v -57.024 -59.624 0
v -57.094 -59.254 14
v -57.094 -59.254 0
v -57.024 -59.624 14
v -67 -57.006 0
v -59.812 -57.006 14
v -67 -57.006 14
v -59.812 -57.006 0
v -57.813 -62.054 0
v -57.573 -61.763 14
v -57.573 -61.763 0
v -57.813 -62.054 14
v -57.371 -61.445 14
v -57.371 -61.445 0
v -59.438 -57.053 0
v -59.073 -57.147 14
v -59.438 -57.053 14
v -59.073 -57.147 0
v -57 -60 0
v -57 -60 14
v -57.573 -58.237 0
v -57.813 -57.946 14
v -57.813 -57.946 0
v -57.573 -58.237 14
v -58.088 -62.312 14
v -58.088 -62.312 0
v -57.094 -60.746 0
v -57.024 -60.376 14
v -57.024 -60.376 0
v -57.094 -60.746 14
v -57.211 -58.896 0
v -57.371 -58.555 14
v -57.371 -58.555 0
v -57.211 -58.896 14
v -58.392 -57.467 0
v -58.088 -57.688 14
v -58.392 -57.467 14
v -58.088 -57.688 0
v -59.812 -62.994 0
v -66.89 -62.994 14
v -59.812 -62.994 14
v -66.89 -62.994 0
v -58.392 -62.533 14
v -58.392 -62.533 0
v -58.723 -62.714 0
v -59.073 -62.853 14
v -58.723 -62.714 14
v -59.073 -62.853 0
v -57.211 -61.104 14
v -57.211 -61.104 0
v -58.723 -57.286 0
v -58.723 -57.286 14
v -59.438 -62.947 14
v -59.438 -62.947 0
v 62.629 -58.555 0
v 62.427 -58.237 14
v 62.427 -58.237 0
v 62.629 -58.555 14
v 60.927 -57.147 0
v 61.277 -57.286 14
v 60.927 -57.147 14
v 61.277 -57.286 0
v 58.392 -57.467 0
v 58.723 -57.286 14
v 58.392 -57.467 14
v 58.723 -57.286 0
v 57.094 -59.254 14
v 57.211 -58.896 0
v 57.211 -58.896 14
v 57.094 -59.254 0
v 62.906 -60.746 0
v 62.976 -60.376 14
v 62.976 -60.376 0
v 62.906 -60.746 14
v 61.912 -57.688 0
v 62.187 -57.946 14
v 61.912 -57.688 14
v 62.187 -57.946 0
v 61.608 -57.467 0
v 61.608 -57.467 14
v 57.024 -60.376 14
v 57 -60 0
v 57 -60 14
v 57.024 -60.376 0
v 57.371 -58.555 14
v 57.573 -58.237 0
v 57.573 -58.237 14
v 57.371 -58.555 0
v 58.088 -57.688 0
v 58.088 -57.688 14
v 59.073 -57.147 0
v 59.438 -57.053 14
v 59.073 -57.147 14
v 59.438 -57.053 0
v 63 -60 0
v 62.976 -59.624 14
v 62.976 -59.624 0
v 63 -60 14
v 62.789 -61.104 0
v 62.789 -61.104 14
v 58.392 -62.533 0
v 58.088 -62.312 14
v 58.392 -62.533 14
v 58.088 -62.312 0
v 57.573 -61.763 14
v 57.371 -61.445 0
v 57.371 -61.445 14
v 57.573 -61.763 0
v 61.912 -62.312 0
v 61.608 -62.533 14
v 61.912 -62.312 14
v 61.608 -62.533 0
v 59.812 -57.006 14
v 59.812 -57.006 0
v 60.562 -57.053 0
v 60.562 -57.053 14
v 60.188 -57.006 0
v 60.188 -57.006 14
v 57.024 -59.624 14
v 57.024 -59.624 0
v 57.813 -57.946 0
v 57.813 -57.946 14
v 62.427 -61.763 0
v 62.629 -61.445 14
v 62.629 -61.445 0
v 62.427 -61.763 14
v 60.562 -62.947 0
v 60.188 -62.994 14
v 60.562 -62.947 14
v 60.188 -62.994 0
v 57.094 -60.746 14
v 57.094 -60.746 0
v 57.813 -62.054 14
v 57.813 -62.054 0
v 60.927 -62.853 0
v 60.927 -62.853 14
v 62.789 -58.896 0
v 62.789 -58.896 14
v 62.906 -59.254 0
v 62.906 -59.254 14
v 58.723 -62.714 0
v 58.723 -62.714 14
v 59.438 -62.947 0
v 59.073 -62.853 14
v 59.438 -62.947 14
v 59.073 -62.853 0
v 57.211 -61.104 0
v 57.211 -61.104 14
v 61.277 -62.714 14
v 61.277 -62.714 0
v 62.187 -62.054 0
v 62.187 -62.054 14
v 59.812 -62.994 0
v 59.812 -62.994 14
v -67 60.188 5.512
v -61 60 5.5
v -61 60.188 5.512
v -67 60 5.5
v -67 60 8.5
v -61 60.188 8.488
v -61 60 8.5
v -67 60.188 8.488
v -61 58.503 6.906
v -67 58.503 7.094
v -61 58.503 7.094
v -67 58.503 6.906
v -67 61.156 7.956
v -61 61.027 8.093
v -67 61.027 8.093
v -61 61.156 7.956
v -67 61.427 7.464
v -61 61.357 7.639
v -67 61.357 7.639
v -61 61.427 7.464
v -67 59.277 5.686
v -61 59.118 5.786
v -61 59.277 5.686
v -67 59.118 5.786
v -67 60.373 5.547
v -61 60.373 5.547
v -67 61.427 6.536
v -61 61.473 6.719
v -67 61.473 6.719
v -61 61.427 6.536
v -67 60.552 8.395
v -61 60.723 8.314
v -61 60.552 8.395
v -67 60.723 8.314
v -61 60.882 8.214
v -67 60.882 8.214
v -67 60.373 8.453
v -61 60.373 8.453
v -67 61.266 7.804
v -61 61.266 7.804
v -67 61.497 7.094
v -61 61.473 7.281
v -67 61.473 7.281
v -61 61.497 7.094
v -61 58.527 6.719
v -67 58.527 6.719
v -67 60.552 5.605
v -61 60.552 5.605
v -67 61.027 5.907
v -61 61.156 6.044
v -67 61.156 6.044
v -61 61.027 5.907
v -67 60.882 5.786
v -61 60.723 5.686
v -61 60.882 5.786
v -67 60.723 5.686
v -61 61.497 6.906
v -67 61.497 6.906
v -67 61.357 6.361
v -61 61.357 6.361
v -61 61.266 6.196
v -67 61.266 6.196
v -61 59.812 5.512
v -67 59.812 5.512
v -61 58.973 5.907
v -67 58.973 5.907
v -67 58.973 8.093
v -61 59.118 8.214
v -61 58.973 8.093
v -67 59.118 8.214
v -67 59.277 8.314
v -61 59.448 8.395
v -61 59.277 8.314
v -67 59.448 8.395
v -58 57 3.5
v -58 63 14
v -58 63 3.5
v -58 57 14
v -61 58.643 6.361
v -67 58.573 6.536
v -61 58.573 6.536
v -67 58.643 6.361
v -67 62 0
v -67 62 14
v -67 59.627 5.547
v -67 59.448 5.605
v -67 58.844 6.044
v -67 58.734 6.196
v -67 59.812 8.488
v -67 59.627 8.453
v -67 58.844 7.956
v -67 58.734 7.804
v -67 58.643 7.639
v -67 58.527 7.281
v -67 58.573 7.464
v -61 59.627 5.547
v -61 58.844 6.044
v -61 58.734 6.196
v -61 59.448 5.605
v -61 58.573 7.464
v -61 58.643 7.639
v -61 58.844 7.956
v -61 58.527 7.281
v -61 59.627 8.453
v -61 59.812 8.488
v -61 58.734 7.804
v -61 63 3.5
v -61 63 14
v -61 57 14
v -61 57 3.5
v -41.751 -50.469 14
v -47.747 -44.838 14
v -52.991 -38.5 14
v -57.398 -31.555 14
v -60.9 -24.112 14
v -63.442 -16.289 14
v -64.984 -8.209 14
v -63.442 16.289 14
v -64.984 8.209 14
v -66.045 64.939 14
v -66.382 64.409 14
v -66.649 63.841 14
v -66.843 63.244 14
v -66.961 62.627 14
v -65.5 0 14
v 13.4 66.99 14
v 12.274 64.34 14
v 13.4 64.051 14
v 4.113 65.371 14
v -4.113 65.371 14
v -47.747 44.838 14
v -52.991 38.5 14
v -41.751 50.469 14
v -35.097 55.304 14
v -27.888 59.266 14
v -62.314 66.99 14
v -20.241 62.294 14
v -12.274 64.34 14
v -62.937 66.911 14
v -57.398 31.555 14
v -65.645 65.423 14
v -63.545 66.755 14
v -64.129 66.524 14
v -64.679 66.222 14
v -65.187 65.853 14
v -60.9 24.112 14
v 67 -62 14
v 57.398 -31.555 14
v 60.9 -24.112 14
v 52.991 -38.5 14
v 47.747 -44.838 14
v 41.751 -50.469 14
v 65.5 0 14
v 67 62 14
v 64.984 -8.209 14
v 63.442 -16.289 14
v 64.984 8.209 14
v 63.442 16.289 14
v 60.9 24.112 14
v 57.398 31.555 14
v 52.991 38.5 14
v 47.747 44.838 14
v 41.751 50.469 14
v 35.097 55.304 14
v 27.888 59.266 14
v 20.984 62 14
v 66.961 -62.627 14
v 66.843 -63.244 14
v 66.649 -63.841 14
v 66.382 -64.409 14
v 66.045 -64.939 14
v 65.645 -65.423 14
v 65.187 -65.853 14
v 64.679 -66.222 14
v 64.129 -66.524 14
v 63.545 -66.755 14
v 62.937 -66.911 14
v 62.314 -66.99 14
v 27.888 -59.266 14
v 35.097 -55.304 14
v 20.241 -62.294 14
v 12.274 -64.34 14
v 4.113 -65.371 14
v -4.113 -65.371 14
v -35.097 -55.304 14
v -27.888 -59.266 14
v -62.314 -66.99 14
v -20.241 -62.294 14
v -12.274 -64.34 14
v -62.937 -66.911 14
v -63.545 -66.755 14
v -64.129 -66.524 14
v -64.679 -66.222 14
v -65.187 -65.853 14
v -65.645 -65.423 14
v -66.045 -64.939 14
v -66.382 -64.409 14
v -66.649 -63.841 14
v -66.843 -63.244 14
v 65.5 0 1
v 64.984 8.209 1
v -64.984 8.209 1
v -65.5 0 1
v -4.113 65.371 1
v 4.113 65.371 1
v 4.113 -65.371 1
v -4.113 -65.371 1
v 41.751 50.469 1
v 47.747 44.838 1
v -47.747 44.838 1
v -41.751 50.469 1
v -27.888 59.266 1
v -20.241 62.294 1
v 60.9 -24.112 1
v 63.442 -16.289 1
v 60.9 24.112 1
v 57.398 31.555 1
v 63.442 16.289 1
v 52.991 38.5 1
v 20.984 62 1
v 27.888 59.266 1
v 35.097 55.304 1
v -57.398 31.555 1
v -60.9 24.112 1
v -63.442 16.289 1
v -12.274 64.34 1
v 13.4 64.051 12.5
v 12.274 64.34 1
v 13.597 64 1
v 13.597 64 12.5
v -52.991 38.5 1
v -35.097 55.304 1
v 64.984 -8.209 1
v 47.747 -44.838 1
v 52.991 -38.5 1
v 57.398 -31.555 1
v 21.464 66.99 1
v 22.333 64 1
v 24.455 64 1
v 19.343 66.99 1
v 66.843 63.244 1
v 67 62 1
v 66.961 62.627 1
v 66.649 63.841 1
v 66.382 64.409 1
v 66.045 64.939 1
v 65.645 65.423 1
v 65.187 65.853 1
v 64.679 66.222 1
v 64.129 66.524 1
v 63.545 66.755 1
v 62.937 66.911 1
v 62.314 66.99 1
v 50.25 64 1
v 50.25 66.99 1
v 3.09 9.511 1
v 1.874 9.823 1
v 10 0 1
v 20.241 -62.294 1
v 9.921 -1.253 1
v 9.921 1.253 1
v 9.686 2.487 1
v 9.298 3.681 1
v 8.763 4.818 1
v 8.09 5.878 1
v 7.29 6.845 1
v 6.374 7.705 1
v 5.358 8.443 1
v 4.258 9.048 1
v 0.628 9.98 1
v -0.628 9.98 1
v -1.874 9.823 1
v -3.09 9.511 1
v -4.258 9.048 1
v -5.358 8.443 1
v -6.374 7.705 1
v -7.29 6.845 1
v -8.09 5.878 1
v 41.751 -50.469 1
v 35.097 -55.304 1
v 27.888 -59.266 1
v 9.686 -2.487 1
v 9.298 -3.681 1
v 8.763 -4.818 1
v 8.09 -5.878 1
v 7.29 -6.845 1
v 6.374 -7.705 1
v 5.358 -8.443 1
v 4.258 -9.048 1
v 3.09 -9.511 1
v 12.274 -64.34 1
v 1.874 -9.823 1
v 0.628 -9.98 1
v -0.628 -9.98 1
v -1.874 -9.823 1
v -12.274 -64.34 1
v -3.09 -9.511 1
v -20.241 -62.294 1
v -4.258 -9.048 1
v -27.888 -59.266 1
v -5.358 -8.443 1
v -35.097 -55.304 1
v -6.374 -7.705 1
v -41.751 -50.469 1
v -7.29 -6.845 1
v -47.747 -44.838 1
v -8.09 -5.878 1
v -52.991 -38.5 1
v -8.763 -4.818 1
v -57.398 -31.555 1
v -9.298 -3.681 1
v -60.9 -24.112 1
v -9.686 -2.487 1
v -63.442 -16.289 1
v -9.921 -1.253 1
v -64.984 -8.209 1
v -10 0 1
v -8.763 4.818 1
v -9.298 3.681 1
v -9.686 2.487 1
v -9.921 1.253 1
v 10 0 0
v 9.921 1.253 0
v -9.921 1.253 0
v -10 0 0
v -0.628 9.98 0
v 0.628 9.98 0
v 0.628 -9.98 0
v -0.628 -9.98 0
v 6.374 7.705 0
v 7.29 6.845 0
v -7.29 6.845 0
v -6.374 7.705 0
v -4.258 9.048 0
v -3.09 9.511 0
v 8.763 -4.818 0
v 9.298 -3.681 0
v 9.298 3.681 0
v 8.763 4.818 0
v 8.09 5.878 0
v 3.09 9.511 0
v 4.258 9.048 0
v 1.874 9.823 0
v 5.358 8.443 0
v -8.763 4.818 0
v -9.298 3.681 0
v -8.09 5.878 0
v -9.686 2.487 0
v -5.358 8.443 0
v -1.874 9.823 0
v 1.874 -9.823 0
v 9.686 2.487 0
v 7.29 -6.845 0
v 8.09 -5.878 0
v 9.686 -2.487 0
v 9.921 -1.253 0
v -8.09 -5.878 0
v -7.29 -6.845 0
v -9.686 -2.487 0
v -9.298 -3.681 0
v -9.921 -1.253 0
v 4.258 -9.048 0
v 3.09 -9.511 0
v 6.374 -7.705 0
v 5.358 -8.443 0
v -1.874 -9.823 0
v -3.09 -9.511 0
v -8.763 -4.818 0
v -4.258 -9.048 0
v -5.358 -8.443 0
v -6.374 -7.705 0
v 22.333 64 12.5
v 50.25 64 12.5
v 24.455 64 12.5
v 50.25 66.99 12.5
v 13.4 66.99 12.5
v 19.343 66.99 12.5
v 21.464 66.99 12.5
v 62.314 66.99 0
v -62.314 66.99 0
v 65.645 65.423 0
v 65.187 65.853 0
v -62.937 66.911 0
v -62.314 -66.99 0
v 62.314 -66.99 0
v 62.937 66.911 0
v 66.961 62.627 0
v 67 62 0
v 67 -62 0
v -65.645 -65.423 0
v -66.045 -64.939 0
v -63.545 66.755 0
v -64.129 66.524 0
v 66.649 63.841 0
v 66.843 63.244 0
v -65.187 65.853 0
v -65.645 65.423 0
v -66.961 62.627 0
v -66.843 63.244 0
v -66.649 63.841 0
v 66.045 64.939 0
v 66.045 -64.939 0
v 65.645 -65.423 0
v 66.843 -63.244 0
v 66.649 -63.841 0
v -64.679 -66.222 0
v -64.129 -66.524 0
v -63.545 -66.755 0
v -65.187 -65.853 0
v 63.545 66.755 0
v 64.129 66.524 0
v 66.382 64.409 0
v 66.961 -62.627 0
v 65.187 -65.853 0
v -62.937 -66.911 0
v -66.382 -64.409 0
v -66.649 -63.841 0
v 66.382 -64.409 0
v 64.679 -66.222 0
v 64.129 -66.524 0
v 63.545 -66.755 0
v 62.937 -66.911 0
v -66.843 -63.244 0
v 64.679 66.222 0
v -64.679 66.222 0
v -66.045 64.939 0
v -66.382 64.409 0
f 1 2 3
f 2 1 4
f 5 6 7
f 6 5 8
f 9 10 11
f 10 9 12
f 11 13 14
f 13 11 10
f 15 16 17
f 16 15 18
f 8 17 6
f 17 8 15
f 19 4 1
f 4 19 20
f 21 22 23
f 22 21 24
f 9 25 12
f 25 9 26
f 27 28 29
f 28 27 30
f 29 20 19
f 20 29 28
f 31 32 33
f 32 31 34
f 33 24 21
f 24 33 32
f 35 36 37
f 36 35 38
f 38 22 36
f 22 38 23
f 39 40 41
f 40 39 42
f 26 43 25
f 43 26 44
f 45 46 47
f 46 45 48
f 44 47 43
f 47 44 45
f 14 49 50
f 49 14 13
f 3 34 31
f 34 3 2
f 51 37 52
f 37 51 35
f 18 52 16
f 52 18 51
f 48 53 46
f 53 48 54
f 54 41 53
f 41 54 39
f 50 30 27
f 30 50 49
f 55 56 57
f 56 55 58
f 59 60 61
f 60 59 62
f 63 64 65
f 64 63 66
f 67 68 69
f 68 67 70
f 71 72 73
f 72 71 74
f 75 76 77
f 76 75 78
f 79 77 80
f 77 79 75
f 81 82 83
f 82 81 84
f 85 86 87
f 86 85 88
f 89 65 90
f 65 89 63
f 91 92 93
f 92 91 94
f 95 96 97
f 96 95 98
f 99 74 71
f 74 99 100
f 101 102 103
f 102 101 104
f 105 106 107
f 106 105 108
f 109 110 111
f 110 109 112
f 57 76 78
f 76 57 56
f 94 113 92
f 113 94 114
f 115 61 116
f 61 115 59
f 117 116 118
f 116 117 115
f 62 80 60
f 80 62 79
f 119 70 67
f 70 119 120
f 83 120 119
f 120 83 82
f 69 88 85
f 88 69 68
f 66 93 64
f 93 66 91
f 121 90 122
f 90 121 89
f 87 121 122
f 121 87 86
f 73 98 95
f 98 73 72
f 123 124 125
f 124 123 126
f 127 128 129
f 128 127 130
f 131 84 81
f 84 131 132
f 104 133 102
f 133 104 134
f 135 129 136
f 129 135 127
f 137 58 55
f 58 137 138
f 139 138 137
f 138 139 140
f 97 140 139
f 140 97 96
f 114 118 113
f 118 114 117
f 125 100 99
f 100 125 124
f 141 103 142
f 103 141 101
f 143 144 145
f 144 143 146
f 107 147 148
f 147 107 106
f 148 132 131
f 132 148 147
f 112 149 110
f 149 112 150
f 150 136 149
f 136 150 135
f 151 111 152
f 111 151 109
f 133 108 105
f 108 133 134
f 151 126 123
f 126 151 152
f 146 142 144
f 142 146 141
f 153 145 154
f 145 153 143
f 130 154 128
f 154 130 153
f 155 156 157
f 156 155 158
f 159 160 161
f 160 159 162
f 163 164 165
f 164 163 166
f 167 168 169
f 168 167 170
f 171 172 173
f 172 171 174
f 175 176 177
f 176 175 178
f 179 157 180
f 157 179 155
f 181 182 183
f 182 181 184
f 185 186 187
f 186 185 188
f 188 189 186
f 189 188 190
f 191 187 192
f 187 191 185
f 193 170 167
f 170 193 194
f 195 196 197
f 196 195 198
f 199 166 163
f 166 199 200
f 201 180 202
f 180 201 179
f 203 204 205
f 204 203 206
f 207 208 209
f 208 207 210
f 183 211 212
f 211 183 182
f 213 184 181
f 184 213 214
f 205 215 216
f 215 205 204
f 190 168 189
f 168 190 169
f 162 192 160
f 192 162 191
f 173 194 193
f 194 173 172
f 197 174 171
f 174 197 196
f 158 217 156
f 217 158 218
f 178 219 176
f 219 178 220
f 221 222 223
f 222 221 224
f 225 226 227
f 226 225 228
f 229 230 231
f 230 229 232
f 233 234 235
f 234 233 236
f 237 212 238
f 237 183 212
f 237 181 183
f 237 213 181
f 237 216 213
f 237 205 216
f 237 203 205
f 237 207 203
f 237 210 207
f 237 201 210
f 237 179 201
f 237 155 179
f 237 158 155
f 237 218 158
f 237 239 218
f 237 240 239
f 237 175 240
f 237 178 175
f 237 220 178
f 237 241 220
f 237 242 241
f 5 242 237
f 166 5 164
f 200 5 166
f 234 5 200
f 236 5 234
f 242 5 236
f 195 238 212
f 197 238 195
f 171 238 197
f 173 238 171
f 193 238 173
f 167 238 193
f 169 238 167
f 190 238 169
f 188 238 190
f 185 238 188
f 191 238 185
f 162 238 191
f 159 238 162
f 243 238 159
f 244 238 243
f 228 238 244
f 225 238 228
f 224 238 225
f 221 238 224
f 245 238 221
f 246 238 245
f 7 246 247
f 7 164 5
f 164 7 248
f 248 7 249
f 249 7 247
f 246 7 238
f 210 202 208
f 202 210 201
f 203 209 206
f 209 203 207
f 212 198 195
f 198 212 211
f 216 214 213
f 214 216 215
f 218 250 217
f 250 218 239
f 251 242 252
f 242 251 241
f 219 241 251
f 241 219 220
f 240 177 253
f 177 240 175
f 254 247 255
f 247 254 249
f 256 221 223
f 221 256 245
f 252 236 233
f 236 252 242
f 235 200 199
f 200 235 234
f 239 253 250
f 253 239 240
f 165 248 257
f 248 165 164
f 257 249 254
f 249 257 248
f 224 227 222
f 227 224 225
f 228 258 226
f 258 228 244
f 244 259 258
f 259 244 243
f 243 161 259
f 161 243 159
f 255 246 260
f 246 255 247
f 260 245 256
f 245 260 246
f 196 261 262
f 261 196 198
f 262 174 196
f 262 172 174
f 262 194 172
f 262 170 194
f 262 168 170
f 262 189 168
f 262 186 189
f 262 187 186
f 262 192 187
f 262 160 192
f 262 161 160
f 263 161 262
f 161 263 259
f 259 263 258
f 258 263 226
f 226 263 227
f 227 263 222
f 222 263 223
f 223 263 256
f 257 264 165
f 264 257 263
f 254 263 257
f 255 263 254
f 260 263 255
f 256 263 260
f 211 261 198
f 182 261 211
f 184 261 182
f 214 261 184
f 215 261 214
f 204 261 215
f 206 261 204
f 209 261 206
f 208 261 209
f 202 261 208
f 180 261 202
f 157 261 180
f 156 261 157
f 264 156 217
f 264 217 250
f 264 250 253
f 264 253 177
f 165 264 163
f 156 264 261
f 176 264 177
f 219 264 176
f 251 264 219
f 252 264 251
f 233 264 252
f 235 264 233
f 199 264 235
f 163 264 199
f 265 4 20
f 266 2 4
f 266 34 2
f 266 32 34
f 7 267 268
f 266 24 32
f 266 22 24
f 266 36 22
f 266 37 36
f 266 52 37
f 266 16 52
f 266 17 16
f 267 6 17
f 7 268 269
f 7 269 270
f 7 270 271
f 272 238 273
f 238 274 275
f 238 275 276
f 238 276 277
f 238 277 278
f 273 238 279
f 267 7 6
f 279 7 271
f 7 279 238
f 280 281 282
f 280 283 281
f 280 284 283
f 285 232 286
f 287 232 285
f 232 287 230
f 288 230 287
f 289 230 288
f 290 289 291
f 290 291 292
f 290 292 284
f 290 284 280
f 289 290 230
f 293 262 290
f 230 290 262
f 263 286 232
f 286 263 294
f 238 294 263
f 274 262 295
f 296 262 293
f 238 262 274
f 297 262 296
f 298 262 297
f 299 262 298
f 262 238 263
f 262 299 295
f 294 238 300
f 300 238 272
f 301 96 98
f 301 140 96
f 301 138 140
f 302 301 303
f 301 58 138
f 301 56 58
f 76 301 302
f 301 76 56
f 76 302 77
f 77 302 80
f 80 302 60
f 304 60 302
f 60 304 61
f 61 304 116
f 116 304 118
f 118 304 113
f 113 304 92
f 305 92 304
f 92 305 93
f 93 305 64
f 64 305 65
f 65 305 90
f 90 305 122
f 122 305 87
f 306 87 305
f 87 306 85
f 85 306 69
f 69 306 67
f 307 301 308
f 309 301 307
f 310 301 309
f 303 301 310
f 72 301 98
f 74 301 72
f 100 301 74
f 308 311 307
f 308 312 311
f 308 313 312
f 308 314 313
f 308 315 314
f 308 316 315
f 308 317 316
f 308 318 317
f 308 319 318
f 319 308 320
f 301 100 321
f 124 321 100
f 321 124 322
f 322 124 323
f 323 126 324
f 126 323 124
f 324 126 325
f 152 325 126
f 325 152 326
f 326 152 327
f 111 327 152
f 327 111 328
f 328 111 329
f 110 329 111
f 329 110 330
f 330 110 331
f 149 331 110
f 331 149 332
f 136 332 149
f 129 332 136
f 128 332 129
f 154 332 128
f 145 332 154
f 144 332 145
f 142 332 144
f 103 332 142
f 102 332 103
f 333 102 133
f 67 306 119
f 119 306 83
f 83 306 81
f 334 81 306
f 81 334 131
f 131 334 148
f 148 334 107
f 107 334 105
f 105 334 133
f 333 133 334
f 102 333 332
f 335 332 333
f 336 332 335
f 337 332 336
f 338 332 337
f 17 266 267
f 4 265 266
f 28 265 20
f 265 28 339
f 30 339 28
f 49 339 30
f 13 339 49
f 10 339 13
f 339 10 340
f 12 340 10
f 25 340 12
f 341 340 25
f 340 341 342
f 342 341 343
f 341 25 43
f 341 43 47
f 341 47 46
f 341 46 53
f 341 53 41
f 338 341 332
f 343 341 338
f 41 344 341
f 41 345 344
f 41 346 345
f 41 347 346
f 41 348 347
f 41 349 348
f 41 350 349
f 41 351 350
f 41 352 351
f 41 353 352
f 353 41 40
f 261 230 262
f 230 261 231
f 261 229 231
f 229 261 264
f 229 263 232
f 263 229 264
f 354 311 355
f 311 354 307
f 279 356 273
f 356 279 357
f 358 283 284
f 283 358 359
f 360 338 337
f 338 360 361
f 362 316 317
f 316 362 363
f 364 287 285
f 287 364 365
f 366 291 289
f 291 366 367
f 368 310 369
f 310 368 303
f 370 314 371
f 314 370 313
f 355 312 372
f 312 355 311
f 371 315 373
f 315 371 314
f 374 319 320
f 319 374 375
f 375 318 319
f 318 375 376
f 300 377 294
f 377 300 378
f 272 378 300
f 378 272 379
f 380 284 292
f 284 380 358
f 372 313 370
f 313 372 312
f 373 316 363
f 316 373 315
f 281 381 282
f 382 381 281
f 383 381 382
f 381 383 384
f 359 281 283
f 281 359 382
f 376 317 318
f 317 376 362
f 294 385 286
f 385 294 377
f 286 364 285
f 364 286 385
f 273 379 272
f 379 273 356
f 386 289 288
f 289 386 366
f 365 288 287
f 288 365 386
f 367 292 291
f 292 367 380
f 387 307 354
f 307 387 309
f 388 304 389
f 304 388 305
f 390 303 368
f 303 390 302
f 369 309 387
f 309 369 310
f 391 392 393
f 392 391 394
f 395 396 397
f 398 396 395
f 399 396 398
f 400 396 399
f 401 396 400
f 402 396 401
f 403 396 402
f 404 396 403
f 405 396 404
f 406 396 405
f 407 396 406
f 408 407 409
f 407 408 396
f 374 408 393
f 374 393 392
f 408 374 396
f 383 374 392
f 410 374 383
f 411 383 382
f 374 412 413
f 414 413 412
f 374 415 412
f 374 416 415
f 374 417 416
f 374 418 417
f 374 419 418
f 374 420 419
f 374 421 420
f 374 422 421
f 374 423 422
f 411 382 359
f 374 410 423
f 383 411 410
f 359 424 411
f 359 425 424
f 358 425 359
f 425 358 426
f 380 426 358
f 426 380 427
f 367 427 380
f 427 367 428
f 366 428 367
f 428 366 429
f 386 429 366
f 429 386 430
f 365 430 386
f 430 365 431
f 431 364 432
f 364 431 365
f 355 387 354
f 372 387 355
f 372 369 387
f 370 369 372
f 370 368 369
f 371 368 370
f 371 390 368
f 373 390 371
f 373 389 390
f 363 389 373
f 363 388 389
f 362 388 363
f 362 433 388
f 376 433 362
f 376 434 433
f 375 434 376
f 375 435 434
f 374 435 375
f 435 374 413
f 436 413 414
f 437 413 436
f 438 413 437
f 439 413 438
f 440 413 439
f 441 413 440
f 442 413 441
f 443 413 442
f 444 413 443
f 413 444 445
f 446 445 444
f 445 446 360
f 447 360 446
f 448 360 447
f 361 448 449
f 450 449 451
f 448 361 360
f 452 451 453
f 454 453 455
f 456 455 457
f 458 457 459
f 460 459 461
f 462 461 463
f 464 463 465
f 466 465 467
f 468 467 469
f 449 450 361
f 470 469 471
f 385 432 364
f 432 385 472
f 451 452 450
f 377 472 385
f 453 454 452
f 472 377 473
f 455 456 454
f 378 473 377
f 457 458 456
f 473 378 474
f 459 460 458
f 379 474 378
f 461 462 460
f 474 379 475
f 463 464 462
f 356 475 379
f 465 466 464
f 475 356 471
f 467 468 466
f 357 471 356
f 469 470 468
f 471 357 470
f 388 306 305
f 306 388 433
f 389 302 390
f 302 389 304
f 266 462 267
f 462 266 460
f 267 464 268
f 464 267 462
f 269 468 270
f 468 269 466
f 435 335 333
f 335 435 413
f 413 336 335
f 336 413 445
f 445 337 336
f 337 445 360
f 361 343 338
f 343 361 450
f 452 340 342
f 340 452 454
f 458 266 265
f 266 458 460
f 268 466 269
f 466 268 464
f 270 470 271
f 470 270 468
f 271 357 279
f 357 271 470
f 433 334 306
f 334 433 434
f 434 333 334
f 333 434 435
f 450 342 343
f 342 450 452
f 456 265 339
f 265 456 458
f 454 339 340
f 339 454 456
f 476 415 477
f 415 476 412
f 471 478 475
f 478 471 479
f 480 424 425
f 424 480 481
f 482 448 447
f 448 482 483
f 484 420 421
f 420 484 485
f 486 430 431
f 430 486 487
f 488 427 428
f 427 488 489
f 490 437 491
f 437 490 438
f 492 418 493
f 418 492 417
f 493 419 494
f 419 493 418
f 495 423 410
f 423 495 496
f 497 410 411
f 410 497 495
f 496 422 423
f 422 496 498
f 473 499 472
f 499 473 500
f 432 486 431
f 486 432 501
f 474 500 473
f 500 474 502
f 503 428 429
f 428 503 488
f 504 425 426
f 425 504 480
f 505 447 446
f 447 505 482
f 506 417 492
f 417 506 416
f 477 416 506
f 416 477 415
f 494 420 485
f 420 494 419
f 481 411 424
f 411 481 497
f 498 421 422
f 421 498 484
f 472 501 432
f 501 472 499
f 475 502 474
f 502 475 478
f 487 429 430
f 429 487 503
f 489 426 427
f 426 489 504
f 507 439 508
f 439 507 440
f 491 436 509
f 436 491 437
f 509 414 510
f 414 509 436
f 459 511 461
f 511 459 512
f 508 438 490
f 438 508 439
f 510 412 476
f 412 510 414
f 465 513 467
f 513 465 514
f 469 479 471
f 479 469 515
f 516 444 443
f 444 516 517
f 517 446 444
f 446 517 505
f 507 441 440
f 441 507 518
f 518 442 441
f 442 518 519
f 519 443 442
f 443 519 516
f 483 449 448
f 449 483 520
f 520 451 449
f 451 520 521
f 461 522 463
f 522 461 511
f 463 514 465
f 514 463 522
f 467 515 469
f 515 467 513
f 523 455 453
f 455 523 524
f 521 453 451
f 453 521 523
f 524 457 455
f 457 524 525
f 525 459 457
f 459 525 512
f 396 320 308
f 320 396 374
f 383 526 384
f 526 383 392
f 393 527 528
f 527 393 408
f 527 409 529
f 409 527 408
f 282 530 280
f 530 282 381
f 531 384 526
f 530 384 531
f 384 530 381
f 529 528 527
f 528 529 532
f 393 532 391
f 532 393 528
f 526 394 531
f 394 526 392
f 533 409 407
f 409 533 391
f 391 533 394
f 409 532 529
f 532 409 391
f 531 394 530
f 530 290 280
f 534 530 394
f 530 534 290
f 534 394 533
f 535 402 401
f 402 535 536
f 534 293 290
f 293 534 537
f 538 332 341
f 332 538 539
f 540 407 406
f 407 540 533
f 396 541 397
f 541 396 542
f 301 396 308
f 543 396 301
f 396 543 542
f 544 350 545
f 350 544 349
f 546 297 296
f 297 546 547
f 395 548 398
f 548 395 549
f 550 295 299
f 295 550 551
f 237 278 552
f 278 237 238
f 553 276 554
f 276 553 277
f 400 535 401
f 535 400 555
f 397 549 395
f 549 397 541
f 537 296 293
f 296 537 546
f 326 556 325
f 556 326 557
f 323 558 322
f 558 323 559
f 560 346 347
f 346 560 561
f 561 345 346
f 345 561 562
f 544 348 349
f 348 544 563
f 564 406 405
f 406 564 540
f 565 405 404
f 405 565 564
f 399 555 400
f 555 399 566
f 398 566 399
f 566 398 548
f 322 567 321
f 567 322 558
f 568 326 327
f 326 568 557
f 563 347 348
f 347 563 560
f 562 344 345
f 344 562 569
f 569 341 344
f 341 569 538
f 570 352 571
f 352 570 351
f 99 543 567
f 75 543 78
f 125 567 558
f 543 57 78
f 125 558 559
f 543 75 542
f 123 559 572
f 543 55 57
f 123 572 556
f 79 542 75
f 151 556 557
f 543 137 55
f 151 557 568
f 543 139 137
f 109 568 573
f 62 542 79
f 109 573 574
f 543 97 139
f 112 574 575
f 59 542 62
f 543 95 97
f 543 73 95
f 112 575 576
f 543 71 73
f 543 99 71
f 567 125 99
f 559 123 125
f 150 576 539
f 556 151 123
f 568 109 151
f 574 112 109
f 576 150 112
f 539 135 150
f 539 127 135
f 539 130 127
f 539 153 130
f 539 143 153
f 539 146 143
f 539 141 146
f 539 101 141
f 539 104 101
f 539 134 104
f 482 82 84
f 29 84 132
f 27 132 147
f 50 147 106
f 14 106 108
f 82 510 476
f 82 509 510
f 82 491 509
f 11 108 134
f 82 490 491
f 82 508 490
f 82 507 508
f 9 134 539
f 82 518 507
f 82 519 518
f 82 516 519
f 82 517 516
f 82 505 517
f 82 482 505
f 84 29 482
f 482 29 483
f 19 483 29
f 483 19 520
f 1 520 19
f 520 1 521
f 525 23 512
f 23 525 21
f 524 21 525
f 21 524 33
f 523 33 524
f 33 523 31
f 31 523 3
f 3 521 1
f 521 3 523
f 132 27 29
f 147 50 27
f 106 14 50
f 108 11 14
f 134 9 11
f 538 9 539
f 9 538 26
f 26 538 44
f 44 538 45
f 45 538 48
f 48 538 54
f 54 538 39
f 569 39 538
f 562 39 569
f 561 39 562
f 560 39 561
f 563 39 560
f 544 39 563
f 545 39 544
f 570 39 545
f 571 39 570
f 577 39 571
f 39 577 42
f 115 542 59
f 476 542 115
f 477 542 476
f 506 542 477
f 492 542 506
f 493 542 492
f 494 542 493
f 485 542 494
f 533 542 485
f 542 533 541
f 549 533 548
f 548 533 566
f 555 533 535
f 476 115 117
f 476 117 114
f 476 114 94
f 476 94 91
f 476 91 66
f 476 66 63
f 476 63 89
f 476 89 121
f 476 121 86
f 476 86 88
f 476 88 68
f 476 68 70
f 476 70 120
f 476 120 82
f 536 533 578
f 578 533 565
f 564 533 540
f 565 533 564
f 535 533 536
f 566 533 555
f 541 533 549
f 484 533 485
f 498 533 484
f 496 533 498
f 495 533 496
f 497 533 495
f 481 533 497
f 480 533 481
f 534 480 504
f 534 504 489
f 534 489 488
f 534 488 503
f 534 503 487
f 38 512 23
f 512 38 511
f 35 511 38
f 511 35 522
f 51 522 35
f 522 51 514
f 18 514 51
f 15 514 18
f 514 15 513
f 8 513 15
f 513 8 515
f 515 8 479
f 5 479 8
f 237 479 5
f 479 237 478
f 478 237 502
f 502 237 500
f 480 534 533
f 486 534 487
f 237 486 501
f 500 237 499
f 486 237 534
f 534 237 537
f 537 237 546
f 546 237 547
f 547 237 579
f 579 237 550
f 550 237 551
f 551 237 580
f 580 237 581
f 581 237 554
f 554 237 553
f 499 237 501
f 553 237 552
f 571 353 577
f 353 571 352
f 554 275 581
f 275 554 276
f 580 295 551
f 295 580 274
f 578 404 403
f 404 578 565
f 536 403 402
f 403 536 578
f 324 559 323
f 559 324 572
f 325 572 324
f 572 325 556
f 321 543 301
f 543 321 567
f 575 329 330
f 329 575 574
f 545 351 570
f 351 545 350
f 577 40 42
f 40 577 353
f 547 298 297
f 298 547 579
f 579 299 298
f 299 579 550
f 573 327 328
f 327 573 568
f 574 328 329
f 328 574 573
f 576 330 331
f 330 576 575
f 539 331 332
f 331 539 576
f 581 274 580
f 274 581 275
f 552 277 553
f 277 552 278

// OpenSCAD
$fn = 50;


difference() {
	union() {
		translate(v = [0, 0, 0]) {
			rotate(a = [0, 0, 0]) {
				hull() {
					translate(v = [-62.0000000000, 62.0000000000, 0]) {
						rotate(a = [0, 0, 0]) {
							translate(v = [0, 0, 0]) {
								rotate(a = [0, 0, 0]) {
									cylinder(h = 14, r = 5);
								}
							}
						}
					}
					translate(v = [62.0000000000, 62.0000000000, 0]) {
						rotate(a = [0, 0, 0]) {
							translate(v = [0, 0, 0]) {
								rotate(a = [0, 0, 0]) {
									cylinder(h = 14, r = 5);
								}
							}
						}
					}
					translate(v = [-62.0000000000, -62.0000000000, 0]) {
						rotate(a = [0, 0, 0]) {
							translate(v = [0, 0, 0]) {
								rotate(a = [0, 0, 0]) {
									cylinder(h = 14, r = 5);
								}
							}
						}
					}
					translate(v = [62.0000000000, -62.0000000000, 0]) {
						rotate(a = [0, 0, 0]) {
							translate(v = [0, 0, 0]) {
								rotate(a = [0, 0, 0]) {
									cylinder(h = 14, r = 5);
								}
							}
						}
					}
				}
			}
		}
	}
	union() {
		translate(v = [-67.5000000000, -60.0000000000, -125]) {
			rotate(a = [0, 0, 0]) {
				hull() {
					translate(v = [7.5000000000, 0, 0]) {
						rotate(a = [0, 0, 0]) {
							translate(v = [0, 0, 0]) {
								rotate(a = [0, 0, 0]) {
									cylinder(h = 250, r = 3.0000000000);
								}
							}
						}
					}
					translate(v = [-7.5000000000, 0, 0]) {
						rotate(a = [0, 0, 0]) {
							translate(v = [0, 0, 0]) {
								rotate(a = [0, 0, 0]) {
									cylinder(h = 250, r = 3.0000000000);
								}
							}
						}
					}
				}
			}
		}
		translate(v = [60.0000000000, -60.0000000000, -125.0000000000]) {
			rotate(a = [0, 0, 0]) {
				cylinder(h = 250, r = 3.0000000000);
			}
		}
		translate(v = [-67.0000000000, 60.0000000000, 7.0000000000]) {
			rotate(a = [0, 90, 0]) {
				cylinder(h = 9, r = 1.5000000000);
			}
		}
		translate(v = [-61.0000000000, 57.0000000000, 3.5000000000]) {
			rotate(a = [0, 0, 0]) {
				cube(size = [3, 6, 10.5000000000]);
			}
		}
		translate(v = [0, 0, 1.0000000000]) {
			rotate(a = [0, 0, 0]) {
				cylinder(h = 16, r = 65.5000000000);
			}
		}
		translate(v = [0, 0, -7.0000000000]) {
			rotate(a = [0, 0, 0]) {
				cylinder(h = 14, r = 10.0000000000);
			}
		}
		translate(v = [0.0000000000, 62.0000000000, 1]) {
			rotate(a = [0, 0, 0]) {
				cube(size = [67.0000000000, 2, 16]);
			}
		}
		translate(v = [50.2500000000, 62.0000000000, 1]) {
			rotate(a = [0, 0, 0]) {
				cube(size = [16.7500000000, 5, 16]);
			}
		}
		translate(v = [13.4000000000, 62.0000000000, 12.5000000000]) {
			rotate(a = [0, 0, 0]) {
				cube(size = [53.6000000000, 5, 1.5000000000]);
			}
		}
		translate(v = [18.5833333333, 67.7500000000, 1]) {
			rotate(a = [0, 0, -45]) {
				cube(size = [7.5000000000, 1.5000000000, 16]);
			}
		}
	}
}
